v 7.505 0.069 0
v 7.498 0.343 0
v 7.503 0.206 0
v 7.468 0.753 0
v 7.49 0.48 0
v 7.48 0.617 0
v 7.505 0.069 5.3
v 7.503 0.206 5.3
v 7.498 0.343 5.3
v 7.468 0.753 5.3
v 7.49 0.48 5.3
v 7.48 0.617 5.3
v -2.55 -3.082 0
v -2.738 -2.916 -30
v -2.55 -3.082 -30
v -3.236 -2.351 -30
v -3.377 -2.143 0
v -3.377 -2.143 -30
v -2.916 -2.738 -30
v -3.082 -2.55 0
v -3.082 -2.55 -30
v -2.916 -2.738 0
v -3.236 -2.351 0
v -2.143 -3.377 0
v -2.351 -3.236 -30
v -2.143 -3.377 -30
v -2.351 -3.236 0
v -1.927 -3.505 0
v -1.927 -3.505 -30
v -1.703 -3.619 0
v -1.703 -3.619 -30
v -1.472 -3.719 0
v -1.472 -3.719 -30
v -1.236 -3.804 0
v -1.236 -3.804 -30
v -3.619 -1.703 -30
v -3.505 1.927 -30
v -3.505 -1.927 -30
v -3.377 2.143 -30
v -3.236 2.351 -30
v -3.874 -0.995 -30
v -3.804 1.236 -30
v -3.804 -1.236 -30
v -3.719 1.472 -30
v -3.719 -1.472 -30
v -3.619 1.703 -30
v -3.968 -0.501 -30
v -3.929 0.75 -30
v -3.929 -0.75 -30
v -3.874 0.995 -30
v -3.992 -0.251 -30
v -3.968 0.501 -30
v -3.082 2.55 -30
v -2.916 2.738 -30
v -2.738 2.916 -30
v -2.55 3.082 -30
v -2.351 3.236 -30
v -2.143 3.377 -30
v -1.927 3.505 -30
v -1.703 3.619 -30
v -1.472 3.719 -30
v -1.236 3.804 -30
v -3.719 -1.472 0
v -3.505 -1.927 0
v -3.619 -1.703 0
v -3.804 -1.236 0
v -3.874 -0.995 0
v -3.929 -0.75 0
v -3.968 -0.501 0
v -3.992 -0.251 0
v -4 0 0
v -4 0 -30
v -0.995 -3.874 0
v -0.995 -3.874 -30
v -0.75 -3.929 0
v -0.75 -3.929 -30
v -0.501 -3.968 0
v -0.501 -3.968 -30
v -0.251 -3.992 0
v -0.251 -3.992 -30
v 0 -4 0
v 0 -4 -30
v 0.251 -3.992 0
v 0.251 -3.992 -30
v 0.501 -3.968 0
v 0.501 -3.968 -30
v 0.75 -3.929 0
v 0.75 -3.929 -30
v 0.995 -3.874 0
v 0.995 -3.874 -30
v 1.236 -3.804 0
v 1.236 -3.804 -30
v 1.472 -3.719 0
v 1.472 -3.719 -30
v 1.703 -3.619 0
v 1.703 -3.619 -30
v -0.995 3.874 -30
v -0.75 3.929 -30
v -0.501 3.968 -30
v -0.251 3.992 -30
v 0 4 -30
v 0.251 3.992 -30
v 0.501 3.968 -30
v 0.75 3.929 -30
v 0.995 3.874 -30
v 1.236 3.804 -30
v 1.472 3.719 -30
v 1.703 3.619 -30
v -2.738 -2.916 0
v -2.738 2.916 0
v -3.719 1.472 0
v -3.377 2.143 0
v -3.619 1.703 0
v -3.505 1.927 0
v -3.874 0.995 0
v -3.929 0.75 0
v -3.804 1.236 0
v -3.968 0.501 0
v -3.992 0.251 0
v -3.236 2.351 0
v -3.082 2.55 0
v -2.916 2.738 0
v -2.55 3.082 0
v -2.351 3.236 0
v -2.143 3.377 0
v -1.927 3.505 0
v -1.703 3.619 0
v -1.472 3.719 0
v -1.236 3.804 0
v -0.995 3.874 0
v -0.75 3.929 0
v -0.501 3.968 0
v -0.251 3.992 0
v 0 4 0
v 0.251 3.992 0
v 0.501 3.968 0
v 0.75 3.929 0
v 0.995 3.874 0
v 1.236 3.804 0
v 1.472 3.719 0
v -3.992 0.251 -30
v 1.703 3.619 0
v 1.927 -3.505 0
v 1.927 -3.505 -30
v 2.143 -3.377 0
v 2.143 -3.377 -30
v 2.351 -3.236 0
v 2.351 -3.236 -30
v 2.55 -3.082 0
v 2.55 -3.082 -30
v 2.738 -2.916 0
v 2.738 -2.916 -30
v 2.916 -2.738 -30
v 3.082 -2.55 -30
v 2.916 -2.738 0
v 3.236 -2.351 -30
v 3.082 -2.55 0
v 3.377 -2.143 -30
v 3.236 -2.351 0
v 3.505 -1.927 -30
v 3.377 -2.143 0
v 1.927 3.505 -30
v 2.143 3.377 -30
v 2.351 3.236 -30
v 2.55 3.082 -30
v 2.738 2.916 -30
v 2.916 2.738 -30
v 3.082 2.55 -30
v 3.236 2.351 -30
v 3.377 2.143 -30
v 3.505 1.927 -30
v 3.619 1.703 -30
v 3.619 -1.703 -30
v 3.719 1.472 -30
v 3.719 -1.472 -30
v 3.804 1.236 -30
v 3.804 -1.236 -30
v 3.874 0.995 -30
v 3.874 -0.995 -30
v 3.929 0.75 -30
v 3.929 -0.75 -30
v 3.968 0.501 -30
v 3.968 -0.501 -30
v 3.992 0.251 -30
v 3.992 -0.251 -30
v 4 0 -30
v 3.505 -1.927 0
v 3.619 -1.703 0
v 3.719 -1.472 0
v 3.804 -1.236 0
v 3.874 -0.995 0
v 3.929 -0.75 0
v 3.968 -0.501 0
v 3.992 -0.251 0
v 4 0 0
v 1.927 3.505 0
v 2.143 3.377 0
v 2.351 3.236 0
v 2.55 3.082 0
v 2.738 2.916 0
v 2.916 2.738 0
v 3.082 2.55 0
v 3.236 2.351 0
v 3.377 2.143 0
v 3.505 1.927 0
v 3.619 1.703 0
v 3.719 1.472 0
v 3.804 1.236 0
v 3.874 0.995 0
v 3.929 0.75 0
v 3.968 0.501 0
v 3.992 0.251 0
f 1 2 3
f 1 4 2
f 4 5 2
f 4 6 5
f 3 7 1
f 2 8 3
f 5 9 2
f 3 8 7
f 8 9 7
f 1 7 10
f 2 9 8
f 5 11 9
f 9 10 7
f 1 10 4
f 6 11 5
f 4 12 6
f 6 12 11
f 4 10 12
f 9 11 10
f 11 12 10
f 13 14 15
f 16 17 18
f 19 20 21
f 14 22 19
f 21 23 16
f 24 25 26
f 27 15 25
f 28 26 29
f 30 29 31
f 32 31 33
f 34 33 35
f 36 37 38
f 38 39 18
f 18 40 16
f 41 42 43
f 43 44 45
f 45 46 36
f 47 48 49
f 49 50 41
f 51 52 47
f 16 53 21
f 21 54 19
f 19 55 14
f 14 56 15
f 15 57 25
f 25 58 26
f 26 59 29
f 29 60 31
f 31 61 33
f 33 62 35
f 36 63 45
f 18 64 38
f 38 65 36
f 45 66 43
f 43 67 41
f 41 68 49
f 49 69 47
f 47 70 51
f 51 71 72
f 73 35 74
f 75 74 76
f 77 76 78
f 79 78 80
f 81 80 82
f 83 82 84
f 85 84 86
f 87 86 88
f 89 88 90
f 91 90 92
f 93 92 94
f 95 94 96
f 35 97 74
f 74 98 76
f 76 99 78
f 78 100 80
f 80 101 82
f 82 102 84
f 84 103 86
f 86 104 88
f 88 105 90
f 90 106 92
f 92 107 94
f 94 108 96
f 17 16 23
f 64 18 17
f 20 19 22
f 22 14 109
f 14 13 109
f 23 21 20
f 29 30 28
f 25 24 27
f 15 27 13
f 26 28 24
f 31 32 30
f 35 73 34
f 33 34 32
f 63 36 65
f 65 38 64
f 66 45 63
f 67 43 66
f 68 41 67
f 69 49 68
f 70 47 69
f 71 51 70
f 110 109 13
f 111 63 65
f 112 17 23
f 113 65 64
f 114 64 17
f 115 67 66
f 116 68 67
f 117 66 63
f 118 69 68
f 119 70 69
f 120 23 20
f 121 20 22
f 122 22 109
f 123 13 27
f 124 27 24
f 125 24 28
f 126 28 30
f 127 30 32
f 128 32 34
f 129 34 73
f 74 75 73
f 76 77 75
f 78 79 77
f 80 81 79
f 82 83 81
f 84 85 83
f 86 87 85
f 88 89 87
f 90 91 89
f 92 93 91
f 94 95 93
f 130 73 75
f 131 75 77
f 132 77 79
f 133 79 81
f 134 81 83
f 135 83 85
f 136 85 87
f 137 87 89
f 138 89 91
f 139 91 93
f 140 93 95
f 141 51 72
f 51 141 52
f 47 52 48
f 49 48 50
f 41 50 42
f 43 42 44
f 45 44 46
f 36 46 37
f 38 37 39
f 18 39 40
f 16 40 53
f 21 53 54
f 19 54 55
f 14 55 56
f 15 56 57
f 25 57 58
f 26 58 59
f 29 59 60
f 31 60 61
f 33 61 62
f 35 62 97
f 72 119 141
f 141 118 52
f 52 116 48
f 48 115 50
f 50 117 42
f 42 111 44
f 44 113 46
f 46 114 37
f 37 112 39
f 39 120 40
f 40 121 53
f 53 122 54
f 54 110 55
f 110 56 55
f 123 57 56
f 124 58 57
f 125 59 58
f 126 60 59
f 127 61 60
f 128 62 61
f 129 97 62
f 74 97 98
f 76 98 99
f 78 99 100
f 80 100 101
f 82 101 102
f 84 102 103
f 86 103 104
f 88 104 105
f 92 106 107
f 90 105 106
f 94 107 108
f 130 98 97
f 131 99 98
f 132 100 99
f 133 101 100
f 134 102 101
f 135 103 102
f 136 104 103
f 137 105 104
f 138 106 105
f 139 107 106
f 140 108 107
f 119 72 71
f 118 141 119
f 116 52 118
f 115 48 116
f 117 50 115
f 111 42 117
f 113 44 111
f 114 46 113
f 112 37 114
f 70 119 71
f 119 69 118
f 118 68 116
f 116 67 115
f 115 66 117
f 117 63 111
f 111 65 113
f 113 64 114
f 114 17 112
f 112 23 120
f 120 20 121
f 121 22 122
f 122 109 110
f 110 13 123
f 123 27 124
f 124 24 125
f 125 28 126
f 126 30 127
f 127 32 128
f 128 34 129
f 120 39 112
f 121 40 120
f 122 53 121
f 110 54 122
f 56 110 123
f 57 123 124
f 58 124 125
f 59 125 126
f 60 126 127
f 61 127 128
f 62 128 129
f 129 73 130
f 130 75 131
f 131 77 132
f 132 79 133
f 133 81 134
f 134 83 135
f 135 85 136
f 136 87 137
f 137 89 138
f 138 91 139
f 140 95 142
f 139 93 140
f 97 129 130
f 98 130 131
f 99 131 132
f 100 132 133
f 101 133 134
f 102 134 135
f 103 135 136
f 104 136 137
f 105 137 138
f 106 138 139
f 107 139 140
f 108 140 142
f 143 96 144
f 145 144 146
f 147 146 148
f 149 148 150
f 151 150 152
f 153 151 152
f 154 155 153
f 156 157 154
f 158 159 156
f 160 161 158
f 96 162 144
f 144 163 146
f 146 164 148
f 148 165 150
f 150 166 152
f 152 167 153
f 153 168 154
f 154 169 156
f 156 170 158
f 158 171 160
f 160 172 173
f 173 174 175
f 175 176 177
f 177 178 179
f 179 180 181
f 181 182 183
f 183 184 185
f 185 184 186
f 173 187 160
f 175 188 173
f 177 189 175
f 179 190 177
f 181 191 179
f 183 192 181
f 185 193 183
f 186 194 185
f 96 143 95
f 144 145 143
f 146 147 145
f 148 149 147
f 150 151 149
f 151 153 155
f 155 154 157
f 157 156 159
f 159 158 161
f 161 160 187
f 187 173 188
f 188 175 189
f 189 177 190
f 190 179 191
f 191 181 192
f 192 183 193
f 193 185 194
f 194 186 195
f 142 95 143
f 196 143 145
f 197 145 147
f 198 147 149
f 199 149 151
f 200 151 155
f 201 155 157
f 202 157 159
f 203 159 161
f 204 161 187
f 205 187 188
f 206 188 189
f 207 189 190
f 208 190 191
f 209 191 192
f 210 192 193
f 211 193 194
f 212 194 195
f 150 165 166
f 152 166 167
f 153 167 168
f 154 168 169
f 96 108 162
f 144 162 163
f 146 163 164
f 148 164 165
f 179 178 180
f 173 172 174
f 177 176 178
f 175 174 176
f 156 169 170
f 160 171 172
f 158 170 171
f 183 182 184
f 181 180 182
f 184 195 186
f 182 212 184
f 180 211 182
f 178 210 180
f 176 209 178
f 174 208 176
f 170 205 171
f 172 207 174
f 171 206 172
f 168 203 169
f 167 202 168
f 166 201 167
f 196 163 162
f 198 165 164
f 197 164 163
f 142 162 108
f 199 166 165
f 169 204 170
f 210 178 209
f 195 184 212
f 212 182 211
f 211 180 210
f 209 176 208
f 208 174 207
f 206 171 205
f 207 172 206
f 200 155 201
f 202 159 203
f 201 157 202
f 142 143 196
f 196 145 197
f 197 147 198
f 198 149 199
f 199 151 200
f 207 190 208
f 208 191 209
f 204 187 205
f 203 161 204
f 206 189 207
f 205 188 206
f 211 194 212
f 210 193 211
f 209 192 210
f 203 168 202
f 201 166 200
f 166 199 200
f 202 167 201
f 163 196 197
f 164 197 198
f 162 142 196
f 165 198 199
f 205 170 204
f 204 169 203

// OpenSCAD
// M8 hex bolt (head only, no threads)
$fn=100;

// Hexagon parameters
across_flats = 13;      // across-flats distance (mm)
hex_height   = 5.3;     // head height (mm)
shank_diam   = 8;       // shank diameter (mm)
shank_len    = 30;      // shank length (mm)

// Compute radius of circumscribed circle for the hexagon
radius = across_flats / sqrt(3);

// Generate hexagon vertices with flats horizontal
points = [
  for(i=[0:5]) let(
    theta = i*PI/3 + PI/6   // rotate so that flats are vertical
  ) [ radius*cos(theta), radius*sin(theta) ]
];

module hex_head() {
  linear_extrude(height=hex_height)
    polygon(points);
}

module shank() {
  translate([0,0,-shank_len])
    cylinder(h=shank_len, d=shank_diam, center=false);
}

union() {
  hex_head();
  shank();
}
